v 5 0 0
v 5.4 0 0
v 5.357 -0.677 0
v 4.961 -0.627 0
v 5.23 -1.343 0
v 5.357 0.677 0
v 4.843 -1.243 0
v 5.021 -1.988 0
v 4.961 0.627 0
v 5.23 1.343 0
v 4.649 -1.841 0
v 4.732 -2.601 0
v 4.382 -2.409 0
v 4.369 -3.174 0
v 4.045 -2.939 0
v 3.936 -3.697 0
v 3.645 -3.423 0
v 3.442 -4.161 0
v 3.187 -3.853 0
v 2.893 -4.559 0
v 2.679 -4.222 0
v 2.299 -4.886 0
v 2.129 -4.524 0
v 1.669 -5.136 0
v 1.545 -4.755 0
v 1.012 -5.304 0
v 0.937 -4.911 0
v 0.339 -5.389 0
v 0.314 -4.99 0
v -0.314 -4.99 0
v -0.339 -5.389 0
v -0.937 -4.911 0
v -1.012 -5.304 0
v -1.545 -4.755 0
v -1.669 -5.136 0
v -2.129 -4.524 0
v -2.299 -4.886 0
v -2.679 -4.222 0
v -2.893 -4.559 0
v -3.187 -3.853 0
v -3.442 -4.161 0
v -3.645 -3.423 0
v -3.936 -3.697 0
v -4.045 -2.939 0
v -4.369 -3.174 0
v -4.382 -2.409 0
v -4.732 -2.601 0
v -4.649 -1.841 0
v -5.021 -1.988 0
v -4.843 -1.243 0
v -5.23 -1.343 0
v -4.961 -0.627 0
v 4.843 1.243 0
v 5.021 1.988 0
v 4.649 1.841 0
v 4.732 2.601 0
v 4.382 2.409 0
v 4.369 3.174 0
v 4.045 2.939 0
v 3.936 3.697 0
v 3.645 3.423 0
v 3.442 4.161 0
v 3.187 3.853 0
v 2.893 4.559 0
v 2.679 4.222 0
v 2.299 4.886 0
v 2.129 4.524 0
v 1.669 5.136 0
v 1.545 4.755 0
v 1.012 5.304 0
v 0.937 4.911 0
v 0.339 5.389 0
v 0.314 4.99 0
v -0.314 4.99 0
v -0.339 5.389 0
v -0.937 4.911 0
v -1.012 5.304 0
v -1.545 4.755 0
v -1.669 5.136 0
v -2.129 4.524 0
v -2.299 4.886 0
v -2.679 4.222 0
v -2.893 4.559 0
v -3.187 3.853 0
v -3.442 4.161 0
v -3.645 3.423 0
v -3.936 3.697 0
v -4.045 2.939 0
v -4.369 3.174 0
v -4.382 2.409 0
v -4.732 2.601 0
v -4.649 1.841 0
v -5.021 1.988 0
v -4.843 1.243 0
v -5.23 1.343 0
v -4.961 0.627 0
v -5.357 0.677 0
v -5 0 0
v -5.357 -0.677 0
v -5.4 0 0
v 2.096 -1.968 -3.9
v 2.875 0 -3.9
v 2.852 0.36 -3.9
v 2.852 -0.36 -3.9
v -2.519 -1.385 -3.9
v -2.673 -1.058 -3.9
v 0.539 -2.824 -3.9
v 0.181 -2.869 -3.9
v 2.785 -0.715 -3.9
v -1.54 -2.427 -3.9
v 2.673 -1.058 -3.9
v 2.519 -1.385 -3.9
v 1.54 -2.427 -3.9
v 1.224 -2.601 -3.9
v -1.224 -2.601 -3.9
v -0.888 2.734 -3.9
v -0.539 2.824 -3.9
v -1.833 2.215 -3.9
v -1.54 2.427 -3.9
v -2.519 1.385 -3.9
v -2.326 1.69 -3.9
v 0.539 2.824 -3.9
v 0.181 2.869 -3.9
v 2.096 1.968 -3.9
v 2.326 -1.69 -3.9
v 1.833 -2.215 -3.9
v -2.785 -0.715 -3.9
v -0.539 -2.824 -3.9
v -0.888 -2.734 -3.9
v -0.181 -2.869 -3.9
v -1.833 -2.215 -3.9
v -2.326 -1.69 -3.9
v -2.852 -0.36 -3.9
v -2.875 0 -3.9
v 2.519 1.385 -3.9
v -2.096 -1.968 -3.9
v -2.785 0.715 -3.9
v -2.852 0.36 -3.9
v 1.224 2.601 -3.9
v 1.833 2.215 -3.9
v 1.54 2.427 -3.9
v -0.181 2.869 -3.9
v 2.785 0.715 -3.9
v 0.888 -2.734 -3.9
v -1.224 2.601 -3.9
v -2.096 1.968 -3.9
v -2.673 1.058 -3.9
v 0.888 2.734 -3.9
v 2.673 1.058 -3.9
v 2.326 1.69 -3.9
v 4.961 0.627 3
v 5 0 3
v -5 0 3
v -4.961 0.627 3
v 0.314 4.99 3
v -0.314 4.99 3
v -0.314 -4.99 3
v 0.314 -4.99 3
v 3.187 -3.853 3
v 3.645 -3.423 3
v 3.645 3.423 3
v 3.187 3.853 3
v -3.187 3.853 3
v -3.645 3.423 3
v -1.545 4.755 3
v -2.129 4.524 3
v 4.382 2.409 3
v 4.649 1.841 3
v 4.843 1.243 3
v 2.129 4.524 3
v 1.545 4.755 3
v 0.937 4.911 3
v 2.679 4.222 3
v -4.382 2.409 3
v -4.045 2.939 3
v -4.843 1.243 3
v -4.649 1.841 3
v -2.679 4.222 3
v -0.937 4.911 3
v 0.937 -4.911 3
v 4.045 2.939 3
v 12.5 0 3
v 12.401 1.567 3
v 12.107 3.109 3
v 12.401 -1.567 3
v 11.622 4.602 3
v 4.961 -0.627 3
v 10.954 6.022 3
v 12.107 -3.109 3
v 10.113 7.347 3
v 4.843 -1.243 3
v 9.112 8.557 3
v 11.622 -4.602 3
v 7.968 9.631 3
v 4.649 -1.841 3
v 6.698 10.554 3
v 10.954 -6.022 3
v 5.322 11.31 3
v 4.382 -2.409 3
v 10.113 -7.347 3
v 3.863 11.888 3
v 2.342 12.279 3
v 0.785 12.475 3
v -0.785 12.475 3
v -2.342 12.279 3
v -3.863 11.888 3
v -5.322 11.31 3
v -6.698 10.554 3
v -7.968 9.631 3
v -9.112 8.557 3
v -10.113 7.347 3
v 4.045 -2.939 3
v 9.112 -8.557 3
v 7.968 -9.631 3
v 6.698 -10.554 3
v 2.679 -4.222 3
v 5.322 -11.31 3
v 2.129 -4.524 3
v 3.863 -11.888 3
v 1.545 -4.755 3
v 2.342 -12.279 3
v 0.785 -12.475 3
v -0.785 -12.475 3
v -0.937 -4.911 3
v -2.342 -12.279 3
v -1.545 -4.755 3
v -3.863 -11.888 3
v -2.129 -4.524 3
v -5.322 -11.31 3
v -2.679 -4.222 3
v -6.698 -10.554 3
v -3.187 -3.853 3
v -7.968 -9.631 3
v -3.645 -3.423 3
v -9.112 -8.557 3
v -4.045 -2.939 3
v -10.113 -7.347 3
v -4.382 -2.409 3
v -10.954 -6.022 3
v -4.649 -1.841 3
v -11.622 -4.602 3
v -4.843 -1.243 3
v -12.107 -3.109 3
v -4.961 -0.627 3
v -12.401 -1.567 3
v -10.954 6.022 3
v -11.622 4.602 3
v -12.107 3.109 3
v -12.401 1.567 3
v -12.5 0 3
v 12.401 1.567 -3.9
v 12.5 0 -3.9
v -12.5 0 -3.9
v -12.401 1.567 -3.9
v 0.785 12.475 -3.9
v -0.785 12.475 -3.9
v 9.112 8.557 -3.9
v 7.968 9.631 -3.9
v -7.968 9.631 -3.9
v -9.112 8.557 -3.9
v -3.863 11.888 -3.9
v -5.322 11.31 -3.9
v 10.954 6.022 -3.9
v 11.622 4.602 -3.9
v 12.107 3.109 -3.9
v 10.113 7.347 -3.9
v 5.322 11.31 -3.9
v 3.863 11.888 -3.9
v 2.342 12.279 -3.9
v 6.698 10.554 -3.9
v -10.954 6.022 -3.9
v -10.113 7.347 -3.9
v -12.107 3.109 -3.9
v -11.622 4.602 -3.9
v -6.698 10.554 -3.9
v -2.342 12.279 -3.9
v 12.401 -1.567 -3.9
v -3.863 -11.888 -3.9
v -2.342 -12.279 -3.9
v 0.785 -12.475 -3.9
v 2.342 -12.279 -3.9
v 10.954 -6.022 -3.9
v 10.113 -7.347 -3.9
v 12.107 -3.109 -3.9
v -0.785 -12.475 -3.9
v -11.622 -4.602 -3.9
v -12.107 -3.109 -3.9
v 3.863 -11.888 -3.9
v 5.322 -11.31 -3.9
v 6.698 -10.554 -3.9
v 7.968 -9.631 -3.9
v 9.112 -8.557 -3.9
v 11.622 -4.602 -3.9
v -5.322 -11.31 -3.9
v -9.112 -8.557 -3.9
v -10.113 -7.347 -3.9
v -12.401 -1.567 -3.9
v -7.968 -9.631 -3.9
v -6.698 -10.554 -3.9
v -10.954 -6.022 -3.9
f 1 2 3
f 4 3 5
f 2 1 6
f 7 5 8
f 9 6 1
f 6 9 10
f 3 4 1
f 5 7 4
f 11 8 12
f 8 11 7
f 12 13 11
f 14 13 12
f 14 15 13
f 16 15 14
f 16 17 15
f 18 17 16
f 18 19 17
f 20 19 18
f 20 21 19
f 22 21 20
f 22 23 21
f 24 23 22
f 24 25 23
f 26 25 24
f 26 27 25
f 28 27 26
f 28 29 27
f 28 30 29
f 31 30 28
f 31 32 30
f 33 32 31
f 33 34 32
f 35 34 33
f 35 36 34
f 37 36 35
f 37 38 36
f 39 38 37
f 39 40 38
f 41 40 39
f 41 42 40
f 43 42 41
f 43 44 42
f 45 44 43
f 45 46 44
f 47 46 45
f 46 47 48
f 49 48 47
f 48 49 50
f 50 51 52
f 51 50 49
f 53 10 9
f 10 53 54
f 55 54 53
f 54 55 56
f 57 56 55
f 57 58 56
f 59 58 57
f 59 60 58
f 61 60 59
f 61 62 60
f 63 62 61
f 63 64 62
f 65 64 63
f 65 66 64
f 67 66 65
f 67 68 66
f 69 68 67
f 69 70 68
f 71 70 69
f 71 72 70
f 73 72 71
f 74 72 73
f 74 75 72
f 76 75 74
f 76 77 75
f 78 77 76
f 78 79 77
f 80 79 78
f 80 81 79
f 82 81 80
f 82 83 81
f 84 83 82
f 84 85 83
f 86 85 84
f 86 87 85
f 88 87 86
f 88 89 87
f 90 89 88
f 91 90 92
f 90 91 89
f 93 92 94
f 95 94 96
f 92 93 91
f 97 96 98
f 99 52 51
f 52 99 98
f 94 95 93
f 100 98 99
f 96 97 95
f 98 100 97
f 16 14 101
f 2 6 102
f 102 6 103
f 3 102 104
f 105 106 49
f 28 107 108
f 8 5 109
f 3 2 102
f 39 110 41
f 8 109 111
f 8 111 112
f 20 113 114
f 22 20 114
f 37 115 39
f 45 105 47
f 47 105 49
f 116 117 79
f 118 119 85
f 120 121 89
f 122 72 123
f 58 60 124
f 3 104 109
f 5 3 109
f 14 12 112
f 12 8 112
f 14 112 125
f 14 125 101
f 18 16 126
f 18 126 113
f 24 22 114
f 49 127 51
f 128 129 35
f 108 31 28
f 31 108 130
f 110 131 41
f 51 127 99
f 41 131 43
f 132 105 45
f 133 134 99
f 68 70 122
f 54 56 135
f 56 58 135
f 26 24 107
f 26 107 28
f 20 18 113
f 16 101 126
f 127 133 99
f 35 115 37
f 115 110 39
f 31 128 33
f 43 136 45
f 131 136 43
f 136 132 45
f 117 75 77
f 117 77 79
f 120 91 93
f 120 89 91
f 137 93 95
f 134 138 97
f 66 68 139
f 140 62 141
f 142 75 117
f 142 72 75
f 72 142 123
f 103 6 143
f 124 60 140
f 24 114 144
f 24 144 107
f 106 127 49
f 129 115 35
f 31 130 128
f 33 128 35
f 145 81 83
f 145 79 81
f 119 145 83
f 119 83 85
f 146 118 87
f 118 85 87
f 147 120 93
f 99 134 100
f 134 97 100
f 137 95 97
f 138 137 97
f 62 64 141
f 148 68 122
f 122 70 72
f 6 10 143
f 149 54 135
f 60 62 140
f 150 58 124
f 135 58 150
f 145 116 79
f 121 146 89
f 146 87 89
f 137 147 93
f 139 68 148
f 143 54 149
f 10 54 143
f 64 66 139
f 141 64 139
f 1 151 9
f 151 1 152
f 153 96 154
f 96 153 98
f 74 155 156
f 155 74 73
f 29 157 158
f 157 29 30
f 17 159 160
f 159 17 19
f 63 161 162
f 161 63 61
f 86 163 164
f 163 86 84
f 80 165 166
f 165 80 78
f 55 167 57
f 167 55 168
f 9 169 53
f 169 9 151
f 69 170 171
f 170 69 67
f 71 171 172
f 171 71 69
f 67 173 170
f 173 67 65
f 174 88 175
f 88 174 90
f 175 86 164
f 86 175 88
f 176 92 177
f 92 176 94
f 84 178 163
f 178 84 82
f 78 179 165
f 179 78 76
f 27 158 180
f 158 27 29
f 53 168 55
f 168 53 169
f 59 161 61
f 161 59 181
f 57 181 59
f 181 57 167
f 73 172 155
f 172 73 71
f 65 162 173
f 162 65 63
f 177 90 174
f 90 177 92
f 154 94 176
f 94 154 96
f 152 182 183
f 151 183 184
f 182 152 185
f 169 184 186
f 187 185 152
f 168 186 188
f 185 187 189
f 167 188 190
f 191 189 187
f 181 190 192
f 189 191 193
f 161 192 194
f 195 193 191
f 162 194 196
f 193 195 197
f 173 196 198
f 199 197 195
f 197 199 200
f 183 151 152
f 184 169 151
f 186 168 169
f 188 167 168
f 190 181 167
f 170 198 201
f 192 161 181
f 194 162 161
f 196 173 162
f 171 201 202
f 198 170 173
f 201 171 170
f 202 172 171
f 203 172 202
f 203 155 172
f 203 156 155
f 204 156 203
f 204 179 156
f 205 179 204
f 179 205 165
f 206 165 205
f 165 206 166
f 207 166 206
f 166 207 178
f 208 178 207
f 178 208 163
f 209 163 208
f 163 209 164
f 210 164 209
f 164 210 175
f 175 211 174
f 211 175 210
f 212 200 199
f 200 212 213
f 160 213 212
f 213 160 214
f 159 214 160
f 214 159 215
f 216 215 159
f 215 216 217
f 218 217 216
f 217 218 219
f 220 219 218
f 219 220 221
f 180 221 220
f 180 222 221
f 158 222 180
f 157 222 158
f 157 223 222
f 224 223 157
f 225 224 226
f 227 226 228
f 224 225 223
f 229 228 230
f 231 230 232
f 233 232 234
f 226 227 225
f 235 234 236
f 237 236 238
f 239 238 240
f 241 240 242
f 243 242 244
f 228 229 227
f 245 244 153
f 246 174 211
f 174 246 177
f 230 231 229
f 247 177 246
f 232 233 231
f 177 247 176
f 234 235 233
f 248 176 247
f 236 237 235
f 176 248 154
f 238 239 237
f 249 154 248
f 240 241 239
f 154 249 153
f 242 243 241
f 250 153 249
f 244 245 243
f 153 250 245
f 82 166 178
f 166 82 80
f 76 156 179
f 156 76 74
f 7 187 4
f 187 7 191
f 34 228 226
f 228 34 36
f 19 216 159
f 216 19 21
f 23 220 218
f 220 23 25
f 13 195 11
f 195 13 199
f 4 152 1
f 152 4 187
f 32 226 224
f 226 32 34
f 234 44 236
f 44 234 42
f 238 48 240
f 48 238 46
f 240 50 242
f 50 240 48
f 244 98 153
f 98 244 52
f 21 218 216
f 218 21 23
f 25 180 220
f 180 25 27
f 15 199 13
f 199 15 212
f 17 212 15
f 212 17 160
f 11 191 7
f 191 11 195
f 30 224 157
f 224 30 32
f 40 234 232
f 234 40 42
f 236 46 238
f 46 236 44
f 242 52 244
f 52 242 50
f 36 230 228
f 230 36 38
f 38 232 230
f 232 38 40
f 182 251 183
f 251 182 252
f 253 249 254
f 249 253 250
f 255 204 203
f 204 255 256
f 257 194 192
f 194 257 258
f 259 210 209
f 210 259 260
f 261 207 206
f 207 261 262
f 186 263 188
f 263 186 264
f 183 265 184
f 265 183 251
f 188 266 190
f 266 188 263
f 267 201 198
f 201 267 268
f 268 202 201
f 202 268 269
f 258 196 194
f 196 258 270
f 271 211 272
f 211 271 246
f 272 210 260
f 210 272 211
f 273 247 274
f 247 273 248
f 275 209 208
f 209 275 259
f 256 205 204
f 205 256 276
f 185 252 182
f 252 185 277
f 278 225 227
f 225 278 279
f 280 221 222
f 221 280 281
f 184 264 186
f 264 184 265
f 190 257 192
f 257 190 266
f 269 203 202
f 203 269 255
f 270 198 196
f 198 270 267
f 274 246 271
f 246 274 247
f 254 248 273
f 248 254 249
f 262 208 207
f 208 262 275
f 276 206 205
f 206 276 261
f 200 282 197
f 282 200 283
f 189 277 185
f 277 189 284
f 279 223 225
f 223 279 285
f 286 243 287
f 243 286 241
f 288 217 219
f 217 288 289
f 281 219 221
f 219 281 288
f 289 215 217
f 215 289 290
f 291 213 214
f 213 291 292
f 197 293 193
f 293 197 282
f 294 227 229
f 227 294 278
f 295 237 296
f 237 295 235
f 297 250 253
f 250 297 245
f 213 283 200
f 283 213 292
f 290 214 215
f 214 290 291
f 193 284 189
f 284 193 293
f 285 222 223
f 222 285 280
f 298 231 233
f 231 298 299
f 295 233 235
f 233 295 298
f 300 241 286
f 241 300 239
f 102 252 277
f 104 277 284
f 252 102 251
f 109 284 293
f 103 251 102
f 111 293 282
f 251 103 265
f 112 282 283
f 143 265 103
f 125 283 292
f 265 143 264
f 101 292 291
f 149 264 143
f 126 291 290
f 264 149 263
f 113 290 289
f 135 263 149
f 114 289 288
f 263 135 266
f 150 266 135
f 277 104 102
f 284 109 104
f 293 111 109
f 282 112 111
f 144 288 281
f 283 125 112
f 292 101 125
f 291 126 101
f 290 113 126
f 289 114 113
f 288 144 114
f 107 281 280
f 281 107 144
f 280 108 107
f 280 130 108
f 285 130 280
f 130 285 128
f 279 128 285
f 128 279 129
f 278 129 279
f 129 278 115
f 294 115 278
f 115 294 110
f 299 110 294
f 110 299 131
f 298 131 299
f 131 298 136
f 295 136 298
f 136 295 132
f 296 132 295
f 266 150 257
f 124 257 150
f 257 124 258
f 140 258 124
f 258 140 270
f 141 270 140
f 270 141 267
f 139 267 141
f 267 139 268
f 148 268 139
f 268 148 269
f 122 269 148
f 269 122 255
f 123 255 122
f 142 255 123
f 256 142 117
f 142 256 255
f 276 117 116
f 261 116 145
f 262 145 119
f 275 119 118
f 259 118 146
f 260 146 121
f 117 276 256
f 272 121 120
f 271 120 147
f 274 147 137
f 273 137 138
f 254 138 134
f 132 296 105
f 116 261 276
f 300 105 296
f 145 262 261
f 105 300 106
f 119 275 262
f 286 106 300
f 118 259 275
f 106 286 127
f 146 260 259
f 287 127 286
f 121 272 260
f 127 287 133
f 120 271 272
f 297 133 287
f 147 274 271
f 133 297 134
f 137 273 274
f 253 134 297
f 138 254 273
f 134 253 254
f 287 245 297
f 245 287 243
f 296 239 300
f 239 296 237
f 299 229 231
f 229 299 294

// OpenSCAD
$fn = 50;


difference() {
	union() {
		translate(v = [0, 0, -3.9000000000]) {
			cylinder(h = 6.9000000000, r = 12.5000000000);
		}
	}
	union() {
		translate(v = [0, 0, 0]) {
			rotate(a = [0, 0, 0]) {
				difference() {
					union() {
						translate(v = [0, 0, -6.9000000000]) {
							cylinder(h = 6.9000000000, r = 2.6000000000);
						}
						translate(v = [0, 0, -3.9000000000]) {
							cylinder(h = 3.9000000000, r1 = 2.8750000000, r2 = 5.4000000000);
						}
						translate(v = [0, 0, -6.9000000000]) {
							cylinder(h = 6.9000000000, r = 2.8750000000);
						}
						translate(v = [0, 0, -6.9000000000]) {
							cylinder(h = 6.9000000000, r = 2.6000000000);
						}
					}
					union();
				}
			}
		}
		#cylinder(h = 3, r = 5.0000000000);
	}
}
